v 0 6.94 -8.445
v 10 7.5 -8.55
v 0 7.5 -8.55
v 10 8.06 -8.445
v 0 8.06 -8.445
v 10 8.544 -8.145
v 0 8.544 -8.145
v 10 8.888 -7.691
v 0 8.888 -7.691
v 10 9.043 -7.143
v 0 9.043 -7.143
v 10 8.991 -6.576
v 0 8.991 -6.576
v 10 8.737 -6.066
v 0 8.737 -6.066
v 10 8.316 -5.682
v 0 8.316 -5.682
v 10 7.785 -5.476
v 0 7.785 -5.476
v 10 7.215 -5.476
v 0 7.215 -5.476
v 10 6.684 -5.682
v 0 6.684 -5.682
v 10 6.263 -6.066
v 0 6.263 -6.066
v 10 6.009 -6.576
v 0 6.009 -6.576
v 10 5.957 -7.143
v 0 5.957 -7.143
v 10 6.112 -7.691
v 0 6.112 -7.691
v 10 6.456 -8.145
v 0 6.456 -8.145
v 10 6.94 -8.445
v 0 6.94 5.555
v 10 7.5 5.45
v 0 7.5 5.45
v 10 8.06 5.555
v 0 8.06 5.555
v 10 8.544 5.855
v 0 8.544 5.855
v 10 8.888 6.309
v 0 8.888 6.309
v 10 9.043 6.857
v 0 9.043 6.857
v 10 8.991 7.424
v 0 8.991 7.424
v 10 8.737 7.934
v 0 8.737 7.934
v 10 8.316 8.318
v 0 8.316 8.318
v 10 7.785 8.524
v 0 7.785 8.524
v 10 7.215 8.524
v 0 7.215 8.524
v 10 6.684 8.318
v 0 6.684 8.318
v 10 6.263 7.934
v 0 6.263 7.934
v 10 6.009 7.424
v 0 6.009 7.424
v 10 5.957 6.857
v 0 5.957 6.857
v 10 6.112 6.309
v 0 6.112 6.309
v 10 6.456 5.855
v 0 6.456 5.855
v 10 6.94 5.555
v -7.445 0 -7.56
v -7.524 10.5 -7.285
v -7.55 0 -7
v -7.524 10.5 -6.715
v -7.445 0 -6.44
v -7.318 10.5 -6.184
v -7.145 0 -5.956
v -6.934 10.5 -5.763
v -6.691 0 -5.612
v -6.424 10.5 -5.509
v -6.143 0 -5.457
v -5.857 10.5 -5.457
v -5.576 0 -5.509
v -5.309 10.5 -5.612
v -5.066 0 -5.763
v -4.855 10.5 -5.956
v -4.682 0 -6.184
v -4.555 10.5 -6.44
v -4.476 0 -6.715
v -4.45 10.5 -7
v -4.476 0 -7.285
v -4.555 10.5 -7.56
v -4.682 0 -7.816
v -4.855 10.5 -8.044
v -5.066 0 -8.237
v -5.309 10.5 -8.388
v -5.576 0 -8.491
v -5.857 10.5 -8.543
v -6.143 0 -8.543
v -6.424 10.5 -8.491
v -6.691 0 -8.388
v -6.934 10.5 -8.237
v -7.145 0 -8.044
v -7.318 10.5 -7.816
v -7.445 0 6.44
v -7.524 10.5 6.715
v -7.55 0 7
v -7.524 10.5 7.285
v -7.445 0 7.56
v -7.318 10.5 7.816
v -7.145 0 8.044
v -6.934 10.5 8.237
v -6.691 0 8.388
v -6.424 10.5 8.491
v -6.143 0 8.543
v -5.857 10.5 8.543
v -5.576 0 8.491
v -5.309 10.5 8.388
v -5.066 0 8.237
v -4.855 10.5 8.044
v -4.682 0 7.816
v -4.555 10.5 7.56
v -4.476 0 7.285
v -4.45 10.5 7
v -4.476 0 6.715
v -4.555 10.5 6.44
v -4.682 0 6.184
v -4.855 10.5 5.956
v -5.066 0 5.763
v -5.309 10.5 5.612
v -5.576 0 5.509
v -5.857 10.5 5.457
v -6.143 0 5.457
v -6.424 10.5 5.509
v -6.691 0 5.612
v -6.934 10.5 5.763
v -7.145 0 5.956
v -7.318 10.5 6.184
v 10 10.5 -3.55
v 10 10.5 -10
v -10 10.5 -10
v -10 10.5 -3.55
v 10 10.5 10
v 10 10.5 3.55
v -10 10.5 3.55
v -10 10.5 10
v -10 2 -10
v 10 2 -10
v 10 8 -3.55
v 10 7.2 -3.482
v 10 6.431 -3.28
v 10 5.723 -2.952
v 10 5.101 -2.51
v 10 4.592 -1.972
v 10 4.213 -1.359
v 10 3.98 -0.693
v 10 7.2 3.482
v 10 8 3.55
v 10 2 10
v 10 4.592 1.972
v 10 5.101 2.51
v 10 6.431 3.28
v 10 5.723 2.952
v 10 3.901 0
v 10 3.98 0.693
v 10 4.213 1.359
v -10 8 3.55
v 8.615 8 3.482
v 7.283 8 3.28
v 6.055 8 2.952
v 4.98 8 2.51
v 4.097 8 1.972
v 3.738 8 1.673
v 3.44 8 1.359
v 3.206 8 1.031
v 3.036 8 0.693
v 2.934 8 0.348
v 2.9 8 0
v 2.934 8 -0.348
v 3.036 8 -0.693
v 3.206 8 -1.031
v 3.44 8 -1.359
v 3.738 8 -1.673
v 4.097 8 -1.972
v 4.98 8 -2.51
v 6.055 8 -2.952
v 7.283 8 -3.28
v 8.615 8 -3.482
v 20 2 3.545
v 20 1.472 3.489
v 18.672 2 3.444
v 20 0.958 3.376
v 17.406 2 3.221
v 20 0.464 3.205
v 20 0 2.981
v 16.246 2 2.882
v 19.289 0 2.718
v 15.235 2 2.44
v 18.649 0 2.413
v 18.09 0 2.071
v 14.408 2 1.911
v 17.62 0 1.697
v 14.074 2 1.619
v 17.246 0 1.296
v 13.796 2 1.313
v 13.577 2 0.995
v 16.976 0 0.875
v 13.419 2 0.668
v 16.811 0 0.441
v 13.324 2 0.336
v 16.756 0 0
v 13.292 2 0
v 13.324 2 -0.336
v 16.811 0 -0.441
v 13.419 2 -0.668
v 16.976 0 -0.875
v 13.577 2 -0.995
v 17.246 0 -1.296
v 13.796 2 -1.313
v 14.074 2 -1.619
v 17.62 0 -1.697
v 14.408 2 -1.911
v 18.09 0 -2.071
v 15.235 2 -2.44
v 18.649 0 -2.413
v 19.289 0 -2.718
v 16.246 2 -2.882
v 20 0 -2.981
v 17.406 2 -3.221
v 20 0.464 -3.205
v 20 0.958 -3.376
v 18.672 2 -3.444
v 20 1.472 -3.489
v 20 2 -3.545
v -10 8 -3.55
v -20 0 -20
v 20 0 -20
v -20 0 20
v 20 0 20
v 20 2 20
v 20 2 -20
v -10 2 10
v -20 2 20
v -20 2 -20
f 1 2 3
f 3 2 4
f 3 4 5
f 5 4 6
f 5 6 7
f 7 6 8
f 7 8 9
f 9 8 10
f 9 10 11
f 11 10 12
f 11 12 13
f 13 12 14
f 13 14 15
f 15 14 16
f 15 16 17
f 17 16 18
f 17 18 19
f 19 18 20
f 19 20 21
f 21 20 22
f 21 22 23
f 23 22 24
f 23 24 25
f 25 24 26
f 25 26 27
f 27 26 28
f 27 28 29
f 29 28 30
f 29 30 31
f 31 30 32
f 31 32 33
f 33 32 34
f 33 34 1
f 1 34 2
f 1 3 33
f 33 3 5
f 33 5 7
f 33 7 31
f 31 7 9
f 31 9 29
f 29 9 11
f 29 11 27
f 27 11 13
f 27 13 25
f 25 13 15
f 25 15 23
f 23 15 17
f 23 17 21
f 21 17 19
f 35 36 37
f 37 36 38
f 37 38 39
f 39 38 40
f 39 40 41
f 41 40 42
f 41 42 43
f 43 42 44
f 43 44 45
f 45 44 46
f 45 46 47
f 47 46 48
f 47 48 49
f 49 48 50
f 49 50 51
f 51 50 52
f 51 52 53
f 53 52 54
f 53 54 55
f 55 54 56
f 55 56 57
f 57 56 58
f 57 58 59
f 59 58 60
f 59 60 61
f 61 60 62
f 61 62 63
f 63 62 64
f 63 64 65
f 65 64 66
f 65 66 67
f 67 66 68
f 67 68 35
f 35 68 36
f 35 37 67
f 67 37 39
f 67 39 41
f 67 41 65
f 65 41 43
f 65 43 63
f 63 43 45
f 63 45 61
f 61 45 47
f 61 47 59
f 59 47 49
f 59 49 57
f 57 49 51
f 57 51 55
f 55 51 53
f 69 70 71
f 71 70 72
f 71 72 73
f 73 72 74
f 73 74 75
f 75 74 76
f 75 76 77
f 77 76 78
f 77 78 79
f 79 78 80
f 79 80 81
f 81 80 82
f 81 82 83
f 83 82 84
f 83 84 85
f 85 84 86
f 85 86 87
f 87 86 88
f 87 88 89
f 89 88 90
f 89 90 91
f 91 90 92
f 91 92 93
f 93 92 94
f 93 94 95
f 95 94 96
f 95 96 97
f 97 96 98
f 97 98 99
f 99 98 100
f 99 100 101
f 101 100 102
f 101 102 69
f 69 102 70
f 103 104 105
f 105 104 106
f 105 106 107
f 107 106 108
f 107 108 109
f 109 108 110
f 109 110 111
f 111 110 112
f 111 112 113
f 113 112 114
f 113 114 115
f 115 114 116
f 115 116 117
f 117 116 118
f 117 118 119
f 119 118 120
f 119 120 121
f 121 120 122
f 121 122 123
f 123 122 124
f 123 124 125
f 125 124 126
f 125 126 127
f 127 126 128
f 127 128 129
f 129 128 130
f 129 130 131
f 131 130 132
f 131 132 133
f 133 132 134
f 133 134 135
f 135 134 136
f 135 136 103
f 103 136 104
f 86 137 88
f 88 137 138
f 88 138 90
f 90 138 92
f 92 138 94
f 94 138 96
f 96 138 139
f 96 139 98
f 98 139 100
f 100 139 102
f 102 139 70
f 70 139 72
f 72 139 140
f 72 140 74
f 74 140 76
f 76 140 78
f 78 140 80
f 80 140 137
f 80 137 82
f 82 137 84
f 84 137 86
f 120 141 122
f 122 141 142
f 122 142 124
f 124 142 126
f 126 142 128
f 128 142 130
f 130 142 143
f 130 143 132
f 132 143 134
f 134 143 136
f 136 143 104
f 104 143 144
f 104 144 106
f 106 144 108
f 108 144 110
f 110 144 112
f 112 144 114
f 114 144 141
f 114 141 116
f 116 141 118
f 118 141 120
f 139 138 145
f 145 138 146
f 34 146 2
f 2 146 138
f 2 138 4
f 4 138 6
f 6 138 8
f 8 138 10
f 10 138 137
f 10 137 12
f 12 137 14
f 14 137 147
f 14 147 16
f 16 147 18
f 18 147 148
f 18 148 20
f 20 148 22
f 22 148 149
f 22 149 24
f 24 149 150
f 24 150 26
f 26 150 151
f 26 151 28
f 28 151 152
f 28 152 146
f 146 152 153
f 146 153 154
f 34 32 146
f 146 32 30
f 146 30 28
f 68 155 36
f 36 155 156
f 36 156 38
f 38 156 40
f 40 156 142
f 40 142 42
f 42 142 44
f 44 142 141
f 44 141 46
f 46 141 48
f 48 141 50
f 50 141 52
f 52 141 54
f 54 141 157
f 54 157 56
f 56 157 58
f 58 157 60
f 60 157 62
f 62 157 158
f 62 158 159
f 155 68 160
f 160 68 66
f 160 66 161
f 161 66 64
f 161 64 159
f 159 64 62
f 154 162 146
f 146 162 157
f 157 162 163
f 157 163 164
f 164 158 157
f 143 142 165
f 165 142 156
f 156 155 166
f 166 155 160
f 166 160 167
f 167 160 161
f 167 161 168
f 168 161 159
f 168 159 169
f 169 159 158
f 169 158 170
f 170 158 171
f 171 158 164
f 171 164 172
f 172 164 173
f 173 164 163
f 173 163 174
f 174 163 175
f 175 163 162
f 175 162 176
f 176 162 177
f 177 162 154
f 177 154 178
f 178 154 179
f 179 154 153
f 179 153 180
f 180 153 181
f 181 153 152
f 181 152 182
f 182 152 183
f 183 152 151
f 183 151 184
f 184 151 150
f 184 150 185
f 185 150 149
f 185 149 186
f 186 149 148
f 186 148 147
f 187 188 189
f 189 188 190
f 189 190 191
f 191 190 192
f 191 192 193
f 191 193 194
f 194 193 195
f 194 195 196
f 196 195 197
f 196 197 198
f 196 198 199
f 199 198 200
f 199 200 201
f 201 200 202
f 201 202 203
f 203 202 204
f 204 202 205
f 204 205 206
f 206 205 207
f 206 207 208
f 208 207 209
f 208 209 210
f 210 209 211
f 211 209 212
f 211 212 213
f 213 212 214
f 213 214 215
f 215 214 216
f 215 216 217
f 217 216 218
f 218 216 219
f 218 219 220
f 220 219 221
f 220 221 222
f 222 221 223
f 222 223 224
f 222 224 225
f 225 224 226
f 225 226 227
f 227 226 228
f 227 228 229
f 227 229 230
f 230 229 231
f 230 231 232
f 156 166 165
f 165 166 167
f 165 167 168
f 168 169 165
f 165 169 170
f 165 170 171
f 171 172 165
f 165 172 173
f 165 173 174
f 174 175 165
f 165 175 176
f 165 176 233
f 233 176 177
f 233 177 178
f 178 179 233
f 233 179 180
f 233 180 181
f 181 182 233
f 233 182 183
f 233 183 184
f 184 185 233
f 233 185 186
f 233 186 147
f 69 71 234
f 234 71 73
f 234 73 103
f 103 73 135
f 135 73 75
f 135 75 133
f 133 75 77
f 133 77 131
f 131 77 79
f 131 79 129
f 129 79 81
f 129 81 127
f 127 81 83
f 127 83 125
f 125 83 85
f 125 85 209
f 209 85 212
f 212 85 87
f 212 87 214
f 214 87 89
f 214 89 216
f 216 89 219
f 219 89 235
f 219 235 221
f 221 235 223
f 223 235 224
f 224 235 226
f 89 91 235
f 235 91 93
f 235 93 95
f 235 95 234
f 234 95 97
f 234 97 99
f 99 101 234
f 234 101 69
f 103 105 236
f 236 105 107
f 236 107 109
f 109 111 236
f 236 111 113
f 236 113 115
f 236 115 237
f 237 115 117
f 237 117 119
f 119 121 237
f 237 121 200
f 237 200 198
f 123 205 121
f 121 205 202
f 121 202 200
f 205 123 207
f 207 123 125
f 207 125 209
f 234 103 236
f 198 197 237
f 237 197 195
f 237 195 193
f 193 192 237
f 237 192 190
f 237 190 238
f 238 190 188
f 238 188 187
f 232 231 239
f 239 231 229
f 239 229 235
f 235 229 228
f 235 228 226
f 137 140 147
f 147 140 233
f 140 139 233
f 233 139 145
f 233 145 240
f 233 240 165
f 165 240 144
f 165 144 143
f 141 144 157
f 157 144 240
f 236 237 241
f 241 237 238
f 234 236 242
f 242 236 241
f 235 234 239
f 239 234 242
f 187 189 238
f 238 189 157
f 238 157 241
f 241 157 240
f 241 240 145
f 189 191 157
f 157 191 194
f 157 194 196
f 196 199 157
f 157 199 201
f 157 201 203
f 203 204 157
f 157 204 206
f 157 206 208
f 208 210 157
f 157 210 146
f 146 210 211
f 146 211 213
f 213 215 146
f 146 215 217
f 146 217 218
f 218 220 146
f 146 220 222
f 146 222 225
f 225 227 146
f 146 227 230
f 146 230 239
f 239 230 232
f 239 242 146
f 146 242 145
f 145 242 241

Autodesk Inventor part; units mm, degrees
ref_plane "YZ Plane" through (0, 0, 0) normal (1, 0, 0) x (0, 1, 0)
ref_plane "XZ Plane" through (0, 0, 0) normal (0, 1, 0) x (-1, 0, 0)
sketch "Sketch1" plane through (0, 0, 0) normal (0, 1, 0) x (-1, 0, 0)
  line L0 (20, 20) -> (-20, 20)
  line L1 (-20, 20) -> (-20, -20)
  line L2 (-20, -20) -> (20, -20)
  line L3 (20, -20) -> (20, 20)
  point P0 (0, 0)
  dimension "d0" = 40
  dimension "d1" = 40
  dimension "d2" = 20
  dimension "d3" = 20
extrude "Extrusion1" add sketch "Sketch1" along normal blind 2
sketch "Sketch2" plane through (0, 2, 0) normal (0, 1, 0) x (1, 0, 0)
  line L0 (-10, -10) -> (10, -10)
  line L1 (10, -10) -> (10, 10)
  line L2 (10, 10) -> (-10, 10)
  line L3 (-10, 10) -> (-10, -10)
  point P0 (0, 0)
  dimension "d6" = 20
  dimension "d7" = 20
  dimension "d8" = 10
  dimension "d9" = 10
extrude "Extrusion2" add sketch "Sketch2" along normal blind 10
sketch "Sketch3" plane through (0, 12, 0) normal (0, 1, 0) x (1, 0, 0)
  line L0 (-10, 10) -> (-10, -10) projected
  line L1 (10, 10) -> (10, -10) projected
  line L2 (-10, -3.55) -> (10, -3.55)
  line L3 (10, -3.55) -> (10, 3.55)
  line L4 (10, 3.55) -> (-10, 3.55)
  line L5 (-10, 3.55) -> (-10, -3.55)
  point P0 (0, 0)
  point P1 (0, 3.55)
  point P2 (10, -3.55)
  dimension "d12" = 7.1
  dimension "d13" = 3.55
extrude "Extrusion3" cut sketch "Sketch3" against normal blind 4
ref_plane "Work Plane1" through (10, 8, 5) normal (0.866, -0.5, 0) x (0, 0, 1)
sketch "Sketch4" plane through (10, 8, 5) normal (0.866, -0.5, 0) x (0, 0, 1)
  line L0 (-1.45, 0) -> (-1.45, -3.4641) projected
  line L1 (-1.45, 10) -> (-8.55, 10) projected
  line L2 (-1.45, 0) -> (-1.45, 10) projected
  line L3 (-8.55, 0) -> (-1.45, 0) projected
  line L4 (-8.55, 10) -> (-8.55, 0) projected
  line L5 (-8.55, -3.4641) -> (-8.55, 0) projected
  circle A0 centre (-5, 0) radius 3.55
  point P0 (-5, 11.9282)
extrude "Extrusion4" cut sketch "Sketch4" along normal through all both and the other way through all contours A0 L3 | L3 A0
sketch "Sketch5" plane through (0, 12, 0) normal (0, 1, 0) x (1, 0, 0)
  line L0 (10, -10) -> (-10, -10) projected
  line L1 (10, -3.55) -> (-10, -3.55) projected
  line L2 (-10, -10) -> (10, -10)
  line L3 (10, -10) -> (10, -3.55)
  line L4 (10, -3.55) -> (-10, -3.55)
  line L5 (-10, -3.55) -> (-10, -10)
  line L6 (-10, 3.0802) -> (10, 3.0802)
  line L7 (10, 3.0802) -> (10, 10.1436)
  line L8 (10, 10.1436) -> (-10, 10.1436)
  line L9 (-10, 10.1436) -> (-10, 3.0802)
  point P0 (0, 0)
  point P1 (-10, -3.55)
extrude "Extrusion5" cut sketch "Sketch5" against normal blind 1.5
sketch "Sketch6" plane through (0, 10.5, 0) normal (0, 1, 0) x (1, 0, 0)
  circle A0 centre (-6, -7) radius 1.55
  circle A1 centre (-6, 7) radius 1.55
  line L0 (-10, 3.55) -> (-10, 10) projected
  line L1 (-10, -10) -> (-10, -3.55) projected
  line L2 (10, -10) -> (-10, -10) projected
  line L3 (-10, 10) -> (10, 10) projected
  point P0 (0, 0)
  point P1 (-10, -6.775)
  point P2 (-10, 3.5772)
  dimension "d21" = 3.1
  dimension "d22" = 3.1
  dimension "d23" = 4
  dimension "d24" = 4
  dimension "d25" = 3
  dimension "d26" = 3
extrude "Extrusion6" cut sketch "Sketch6" against normal through all
sketch "Sketch7" plane through (10, 2, 10) normal (1, 0, 0) x (0, 0, -1)
  circle A0 centre (3, 5.5) radius 1.55
  circle A1 centre (17, 5.5) radius 1.55
  line L0 (20, 0) -> (20, 8.5) projected
  line L1 (0, 0) -> (0, 8.5) projected
  line L2 (6.45, 8.5) -> (0, 8.5) projected
  line L3 (20, 8.5) -> (13.55, 8.5) projected
  point P0 (10, -2)
  point P1 (13.5772, 8.7)
  dimension "d29" = 3.1
  dimension "d30" = 3.1
  dimension "d31" = 3
  dimension "d32" = 3
  dimension "d33" = 3
  dimension "d34" = 3
extrude "Extrusion7" cut sketch "Sketch7" against normal blind 10
equation "\"d2\" = 0.5 * d1"
equation "\"d3\" = 0.5 * d0"
equation "\"d8\" = 0.5 * d7"
equation "\"d9\" = 0.5 * d6"
equation "\"d13\" = 0.5 * d12"
properties part number "Camera Holder 1"
